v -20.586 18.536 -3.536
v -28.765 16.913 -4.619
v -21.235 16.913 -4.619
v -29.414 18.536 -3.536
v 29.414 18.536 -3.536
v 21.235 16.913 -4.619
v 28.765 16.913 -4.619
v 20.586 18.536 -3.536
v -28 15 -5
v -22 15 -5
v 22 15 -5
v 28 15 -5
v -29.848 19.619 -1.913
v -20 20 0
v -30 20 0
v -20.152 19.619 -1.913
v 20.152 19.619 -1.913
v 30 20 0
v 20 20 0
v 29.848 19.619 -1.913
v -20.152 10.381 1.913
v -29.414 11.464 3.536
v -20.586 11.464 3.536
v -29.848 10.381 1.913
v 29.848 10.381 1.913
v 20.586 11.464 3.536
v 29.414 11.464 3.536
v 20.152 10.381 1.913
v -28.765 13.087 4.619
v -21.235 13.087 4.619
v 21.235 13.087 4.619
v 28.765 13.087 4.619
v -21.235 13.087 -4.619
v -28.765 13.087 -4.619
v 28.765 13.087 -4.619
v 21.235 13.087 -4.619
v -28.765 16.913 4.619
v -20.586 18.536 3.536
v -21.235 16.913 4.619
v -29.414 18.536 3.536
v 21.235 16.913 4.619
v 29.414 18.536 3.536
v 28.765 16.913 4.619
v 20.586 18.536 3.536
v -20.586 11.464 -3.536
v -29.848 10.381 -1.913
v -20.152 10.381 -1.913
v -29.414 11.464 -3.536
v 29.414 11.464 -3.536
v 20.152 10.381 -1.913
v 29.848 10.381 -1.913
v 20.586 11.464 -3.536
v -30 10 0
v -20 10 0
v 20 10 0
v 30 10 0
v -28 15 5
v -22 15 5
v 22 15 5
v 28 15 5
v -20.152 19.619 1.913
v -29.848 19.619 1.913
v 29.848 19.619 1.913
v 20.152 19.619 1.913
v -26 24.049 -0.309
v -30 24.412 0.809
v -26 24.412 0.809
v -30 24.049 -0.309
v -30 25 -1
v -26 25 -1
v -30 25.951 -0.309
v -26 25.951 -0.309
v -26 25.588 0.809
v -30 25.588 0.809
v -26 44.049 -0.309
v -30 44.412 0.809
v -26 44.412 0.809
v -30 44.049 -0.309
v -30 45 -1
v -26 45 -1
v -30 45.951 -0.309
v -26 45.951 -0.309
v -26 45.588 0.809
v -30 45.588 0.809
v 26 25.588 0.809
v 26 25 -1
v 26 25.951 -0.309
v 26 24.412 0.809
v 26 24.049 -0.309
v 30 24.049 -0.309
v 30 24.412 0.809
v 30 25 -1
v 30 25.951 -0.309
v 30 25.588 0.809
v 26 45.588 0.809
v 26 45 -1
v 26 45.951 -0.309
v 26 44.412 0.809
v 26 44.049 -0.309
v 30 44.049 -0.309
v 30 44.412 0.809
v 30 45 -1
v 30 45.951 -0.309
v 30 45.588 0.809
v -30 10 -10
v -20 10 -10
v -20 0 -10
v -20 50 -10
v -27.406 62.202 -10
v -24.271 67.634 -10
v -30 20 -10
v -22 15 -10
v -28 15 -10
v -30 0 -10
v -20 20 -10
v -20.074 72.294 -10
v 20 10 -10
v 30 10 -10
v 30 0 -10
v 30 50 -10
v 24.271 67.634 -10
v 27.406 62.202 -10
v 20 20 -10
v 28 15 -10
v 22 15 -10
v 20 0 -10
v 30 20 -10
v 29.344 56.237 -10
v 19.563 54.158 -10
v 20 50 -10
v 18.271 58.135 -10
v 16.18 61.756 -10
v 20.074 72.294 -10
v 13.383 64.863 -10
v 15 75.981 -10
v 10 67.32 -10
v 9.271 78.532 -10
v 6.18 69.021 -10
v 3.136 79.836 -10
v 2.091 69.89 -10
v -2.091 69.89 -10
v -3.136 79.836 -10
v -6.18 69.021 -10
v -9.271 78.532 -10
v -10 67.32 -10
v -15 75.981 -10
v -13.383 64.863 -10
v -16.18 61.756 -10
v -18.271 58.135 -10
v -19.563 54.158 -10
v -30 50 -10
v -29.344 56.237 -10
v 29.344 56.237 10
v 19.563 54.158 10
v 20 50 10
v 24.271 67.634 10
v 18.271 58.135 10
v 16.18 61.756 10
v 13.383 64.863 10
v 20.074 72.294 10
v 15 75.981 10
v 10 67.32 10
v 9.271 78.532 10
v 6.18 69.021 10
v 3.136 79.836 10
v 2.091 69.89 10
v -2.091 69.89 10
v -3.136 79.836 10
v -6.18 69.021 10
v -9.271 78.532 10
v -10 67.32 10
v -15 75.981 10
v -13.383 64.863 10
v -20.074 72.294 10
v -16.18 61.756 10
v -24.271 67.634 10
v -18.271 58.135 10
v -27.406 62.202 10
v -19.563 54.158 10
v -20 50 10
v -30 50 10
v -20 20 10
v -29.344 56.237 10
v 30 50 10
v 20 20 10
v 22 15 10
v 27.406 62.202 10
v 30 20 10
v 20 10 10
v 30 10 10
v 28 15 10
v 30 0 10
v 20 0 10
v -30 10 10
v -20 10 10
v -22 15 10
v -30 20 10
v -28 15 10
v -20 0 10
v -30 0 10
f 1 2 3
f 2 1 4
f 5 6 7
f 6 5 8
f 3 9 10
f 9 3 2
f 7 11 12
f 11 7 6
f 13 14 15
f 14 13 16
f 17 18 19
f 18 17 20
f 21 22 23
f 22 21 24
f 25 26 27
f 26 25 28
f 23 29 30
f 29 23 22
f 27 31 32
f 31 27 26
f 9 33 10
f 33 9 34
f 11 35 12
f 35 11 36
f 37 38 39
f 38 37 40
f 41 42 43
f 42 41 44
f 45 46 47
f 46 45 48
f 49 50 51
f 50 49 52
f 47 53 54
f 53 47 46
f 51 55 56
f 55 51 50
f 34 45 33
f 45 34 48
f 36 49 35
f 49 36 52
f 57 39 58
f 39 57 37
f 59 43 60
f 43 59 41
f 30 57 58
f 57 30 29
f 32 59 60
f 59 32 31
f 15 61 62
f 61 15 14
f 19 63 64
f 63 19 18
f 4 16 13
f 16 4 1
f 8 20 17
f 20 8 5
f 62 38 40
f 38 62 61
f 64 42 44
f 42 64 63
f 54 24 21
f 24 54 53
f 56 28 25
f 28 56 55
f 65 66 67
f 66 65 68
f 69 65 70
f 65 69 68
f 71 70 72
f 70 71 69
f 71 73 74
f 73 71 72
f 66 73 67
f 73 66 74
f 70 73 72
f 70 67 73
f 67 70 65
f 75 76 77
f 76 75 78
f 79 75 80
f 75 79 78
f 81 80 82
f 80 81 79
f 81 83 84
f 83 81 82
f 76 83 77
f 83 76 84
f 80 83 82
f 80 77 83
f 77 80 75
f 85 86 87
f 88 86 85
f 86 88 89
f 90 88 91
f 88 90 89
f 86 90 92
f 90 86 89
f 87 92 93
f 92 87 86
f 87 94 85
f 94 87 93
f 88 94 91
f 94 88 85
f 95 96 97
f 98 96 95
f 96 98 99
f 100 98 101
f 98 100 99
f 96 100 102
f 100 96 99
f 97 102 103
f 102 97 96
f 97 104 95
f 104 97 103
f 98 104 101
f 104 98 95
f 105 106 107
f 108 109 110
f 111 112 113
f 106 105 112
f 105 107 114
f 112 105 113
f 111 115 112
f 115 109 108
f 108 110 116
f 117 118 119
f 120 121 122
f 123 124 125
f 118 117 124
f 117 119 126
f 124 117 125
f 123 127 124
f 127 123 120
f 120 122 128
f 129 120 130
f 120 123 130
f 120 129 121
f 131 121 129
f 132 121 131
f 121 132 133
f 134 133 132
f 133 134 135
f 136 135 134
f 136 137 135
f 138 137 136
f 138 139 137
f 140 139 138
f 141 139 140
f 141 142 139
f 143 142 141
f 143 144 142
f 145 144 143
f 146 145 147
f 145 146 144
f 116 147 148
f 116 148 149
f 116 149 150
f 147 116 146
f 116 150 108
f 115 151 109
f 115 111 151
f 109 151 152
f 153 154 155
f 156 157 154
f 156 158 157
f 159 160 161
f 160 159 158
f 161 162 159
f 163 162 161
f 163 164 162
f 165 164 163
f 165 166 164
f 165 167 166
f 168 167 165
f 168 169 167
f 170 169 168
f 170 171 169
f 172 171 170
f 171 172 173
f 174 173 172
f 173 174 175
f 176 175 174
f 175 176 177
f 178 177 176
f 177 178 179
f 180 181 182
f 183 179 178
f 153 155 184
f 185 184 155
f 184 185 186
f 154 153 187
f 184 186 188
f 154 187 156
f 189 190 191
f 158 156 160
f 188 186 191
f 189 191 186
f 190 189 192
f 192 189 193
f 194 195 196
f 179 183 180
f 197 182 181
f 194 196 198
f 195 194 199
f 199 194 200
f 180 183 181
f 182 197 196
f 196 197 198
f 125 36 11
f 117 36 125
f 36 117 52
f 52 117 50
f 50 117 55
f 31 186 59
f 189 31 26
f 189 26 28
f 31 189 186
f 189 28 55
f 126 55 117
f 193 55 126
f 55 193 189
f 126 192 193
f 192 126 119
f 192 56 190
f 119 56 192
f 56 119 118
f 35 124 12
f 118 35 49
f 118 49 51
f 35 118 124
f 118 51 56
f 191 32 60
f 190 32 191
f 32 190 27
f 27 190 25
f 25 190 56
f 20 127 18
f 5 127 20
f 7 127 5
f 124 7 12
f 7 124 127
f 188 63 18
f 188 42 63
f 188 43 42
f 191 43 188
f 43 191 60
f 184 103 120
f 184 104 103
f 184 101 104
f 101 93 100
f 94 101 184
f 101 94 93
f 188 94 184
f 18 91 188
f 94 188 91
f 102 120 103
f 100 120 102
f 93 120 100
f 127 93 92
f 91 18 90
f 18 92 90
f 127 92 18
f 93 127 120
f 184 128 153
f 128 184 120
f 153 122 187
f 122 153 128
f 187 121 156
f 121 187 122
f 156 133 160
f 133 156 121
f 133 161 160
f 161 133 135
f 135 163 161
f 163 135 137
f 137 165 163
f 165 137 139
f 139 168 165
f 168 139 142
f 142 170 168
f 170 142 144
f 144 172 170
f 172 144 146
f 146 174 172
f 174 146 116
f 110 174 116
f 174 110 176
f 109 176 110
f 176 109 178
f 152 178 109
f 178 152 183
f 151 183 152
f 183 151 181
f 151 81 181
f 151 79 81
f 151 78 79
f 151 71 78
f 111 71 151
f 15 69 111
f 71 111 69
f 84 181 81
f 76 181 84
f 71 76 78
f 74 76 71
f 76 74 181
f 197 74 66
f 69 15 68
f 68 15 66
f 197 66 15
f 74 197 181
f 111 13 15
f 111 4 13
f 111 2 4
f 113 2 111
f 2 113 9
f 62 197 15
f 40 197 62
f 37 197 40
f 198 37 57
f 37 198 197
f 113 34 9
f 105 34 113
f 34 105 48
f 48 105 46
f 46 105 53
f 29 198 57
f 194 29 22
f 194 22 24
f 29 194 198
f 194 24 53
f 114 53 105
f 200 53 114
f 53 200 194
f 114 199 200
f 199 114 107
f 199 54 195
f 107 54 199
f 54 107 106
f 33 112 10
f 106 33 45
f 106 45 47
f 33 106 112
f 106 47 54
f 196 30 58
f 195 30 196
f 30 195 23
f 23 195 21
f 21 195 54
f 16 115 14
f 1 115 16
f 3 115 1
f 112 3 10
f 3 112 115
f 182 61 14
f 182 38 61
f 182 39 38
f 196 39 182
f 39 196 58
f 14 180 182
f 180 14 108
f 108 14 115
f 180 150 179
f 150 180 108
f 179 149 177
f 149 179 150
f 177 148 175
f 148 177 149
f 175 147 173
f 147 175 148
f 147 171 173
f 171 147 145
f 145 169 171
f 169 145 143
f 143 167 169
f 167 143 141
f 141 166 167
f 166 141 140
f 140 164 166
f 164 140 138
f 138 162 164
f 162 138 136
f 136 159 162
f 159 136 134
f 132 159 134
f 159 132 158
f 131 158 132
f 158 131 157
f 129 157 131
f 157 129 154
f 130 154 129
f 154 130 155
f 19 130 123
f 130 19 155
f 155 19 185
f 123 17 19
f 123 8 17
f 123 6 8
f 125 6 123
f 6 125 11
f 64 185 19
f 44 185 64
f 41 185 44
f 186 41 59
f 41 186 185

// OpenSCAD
p0 = [-20,0];
p1 = [-30,0];
p2 = [-30,10];
p3 = [-28,15];
p4 = [-30,20];
p5 = [-30,50];
p6 = [-20,50];
p7 = [-20,20];
p8 = [-22,15];
p9 = [-20,10];

l_points = [p0,p1,p2,p3,p4,p5,p6,p7,p8,p9];
i_points = [p0,p6,[20,50],[20,0]];

module base_geo(l_points,i_points){

translate([0,0,-10])
linear_extrude(height=20,twist=0){
    
    {polygon(l_points);

translate([50,0,0]) polygon(l_points);

difference() {
    translate([0,50,0]) circle(30);
    translate([0,50,0]) circle(20);
    polygon(i_points);
}

};
};
};


//datum features

lld = [-31,25,0];
lud = [-31,45,0];
rld = [26,25,0];
rud = [26,45,0];

d = [lld,lud,rld,rud];

module main_geo(d){
difference(){
difference(){
base_geo(l_points,i_points);
    translate([0,15,0])
    rotate([0,90,0])
    union(){
    linear_extrude(height=100,twist=0) circle(5);
    rotate([0,180,0]) linear_extrude(height=100,twist=0) circle(5);
    };
for (i = [0:len(d)-1]){
        translate(d[i]) rotate([0,90,0]) linear_extrude(height=5, twist = 0) circle(1);
    };
}
}
}

//run with argument "d" to get datum features
main_geo(d);
